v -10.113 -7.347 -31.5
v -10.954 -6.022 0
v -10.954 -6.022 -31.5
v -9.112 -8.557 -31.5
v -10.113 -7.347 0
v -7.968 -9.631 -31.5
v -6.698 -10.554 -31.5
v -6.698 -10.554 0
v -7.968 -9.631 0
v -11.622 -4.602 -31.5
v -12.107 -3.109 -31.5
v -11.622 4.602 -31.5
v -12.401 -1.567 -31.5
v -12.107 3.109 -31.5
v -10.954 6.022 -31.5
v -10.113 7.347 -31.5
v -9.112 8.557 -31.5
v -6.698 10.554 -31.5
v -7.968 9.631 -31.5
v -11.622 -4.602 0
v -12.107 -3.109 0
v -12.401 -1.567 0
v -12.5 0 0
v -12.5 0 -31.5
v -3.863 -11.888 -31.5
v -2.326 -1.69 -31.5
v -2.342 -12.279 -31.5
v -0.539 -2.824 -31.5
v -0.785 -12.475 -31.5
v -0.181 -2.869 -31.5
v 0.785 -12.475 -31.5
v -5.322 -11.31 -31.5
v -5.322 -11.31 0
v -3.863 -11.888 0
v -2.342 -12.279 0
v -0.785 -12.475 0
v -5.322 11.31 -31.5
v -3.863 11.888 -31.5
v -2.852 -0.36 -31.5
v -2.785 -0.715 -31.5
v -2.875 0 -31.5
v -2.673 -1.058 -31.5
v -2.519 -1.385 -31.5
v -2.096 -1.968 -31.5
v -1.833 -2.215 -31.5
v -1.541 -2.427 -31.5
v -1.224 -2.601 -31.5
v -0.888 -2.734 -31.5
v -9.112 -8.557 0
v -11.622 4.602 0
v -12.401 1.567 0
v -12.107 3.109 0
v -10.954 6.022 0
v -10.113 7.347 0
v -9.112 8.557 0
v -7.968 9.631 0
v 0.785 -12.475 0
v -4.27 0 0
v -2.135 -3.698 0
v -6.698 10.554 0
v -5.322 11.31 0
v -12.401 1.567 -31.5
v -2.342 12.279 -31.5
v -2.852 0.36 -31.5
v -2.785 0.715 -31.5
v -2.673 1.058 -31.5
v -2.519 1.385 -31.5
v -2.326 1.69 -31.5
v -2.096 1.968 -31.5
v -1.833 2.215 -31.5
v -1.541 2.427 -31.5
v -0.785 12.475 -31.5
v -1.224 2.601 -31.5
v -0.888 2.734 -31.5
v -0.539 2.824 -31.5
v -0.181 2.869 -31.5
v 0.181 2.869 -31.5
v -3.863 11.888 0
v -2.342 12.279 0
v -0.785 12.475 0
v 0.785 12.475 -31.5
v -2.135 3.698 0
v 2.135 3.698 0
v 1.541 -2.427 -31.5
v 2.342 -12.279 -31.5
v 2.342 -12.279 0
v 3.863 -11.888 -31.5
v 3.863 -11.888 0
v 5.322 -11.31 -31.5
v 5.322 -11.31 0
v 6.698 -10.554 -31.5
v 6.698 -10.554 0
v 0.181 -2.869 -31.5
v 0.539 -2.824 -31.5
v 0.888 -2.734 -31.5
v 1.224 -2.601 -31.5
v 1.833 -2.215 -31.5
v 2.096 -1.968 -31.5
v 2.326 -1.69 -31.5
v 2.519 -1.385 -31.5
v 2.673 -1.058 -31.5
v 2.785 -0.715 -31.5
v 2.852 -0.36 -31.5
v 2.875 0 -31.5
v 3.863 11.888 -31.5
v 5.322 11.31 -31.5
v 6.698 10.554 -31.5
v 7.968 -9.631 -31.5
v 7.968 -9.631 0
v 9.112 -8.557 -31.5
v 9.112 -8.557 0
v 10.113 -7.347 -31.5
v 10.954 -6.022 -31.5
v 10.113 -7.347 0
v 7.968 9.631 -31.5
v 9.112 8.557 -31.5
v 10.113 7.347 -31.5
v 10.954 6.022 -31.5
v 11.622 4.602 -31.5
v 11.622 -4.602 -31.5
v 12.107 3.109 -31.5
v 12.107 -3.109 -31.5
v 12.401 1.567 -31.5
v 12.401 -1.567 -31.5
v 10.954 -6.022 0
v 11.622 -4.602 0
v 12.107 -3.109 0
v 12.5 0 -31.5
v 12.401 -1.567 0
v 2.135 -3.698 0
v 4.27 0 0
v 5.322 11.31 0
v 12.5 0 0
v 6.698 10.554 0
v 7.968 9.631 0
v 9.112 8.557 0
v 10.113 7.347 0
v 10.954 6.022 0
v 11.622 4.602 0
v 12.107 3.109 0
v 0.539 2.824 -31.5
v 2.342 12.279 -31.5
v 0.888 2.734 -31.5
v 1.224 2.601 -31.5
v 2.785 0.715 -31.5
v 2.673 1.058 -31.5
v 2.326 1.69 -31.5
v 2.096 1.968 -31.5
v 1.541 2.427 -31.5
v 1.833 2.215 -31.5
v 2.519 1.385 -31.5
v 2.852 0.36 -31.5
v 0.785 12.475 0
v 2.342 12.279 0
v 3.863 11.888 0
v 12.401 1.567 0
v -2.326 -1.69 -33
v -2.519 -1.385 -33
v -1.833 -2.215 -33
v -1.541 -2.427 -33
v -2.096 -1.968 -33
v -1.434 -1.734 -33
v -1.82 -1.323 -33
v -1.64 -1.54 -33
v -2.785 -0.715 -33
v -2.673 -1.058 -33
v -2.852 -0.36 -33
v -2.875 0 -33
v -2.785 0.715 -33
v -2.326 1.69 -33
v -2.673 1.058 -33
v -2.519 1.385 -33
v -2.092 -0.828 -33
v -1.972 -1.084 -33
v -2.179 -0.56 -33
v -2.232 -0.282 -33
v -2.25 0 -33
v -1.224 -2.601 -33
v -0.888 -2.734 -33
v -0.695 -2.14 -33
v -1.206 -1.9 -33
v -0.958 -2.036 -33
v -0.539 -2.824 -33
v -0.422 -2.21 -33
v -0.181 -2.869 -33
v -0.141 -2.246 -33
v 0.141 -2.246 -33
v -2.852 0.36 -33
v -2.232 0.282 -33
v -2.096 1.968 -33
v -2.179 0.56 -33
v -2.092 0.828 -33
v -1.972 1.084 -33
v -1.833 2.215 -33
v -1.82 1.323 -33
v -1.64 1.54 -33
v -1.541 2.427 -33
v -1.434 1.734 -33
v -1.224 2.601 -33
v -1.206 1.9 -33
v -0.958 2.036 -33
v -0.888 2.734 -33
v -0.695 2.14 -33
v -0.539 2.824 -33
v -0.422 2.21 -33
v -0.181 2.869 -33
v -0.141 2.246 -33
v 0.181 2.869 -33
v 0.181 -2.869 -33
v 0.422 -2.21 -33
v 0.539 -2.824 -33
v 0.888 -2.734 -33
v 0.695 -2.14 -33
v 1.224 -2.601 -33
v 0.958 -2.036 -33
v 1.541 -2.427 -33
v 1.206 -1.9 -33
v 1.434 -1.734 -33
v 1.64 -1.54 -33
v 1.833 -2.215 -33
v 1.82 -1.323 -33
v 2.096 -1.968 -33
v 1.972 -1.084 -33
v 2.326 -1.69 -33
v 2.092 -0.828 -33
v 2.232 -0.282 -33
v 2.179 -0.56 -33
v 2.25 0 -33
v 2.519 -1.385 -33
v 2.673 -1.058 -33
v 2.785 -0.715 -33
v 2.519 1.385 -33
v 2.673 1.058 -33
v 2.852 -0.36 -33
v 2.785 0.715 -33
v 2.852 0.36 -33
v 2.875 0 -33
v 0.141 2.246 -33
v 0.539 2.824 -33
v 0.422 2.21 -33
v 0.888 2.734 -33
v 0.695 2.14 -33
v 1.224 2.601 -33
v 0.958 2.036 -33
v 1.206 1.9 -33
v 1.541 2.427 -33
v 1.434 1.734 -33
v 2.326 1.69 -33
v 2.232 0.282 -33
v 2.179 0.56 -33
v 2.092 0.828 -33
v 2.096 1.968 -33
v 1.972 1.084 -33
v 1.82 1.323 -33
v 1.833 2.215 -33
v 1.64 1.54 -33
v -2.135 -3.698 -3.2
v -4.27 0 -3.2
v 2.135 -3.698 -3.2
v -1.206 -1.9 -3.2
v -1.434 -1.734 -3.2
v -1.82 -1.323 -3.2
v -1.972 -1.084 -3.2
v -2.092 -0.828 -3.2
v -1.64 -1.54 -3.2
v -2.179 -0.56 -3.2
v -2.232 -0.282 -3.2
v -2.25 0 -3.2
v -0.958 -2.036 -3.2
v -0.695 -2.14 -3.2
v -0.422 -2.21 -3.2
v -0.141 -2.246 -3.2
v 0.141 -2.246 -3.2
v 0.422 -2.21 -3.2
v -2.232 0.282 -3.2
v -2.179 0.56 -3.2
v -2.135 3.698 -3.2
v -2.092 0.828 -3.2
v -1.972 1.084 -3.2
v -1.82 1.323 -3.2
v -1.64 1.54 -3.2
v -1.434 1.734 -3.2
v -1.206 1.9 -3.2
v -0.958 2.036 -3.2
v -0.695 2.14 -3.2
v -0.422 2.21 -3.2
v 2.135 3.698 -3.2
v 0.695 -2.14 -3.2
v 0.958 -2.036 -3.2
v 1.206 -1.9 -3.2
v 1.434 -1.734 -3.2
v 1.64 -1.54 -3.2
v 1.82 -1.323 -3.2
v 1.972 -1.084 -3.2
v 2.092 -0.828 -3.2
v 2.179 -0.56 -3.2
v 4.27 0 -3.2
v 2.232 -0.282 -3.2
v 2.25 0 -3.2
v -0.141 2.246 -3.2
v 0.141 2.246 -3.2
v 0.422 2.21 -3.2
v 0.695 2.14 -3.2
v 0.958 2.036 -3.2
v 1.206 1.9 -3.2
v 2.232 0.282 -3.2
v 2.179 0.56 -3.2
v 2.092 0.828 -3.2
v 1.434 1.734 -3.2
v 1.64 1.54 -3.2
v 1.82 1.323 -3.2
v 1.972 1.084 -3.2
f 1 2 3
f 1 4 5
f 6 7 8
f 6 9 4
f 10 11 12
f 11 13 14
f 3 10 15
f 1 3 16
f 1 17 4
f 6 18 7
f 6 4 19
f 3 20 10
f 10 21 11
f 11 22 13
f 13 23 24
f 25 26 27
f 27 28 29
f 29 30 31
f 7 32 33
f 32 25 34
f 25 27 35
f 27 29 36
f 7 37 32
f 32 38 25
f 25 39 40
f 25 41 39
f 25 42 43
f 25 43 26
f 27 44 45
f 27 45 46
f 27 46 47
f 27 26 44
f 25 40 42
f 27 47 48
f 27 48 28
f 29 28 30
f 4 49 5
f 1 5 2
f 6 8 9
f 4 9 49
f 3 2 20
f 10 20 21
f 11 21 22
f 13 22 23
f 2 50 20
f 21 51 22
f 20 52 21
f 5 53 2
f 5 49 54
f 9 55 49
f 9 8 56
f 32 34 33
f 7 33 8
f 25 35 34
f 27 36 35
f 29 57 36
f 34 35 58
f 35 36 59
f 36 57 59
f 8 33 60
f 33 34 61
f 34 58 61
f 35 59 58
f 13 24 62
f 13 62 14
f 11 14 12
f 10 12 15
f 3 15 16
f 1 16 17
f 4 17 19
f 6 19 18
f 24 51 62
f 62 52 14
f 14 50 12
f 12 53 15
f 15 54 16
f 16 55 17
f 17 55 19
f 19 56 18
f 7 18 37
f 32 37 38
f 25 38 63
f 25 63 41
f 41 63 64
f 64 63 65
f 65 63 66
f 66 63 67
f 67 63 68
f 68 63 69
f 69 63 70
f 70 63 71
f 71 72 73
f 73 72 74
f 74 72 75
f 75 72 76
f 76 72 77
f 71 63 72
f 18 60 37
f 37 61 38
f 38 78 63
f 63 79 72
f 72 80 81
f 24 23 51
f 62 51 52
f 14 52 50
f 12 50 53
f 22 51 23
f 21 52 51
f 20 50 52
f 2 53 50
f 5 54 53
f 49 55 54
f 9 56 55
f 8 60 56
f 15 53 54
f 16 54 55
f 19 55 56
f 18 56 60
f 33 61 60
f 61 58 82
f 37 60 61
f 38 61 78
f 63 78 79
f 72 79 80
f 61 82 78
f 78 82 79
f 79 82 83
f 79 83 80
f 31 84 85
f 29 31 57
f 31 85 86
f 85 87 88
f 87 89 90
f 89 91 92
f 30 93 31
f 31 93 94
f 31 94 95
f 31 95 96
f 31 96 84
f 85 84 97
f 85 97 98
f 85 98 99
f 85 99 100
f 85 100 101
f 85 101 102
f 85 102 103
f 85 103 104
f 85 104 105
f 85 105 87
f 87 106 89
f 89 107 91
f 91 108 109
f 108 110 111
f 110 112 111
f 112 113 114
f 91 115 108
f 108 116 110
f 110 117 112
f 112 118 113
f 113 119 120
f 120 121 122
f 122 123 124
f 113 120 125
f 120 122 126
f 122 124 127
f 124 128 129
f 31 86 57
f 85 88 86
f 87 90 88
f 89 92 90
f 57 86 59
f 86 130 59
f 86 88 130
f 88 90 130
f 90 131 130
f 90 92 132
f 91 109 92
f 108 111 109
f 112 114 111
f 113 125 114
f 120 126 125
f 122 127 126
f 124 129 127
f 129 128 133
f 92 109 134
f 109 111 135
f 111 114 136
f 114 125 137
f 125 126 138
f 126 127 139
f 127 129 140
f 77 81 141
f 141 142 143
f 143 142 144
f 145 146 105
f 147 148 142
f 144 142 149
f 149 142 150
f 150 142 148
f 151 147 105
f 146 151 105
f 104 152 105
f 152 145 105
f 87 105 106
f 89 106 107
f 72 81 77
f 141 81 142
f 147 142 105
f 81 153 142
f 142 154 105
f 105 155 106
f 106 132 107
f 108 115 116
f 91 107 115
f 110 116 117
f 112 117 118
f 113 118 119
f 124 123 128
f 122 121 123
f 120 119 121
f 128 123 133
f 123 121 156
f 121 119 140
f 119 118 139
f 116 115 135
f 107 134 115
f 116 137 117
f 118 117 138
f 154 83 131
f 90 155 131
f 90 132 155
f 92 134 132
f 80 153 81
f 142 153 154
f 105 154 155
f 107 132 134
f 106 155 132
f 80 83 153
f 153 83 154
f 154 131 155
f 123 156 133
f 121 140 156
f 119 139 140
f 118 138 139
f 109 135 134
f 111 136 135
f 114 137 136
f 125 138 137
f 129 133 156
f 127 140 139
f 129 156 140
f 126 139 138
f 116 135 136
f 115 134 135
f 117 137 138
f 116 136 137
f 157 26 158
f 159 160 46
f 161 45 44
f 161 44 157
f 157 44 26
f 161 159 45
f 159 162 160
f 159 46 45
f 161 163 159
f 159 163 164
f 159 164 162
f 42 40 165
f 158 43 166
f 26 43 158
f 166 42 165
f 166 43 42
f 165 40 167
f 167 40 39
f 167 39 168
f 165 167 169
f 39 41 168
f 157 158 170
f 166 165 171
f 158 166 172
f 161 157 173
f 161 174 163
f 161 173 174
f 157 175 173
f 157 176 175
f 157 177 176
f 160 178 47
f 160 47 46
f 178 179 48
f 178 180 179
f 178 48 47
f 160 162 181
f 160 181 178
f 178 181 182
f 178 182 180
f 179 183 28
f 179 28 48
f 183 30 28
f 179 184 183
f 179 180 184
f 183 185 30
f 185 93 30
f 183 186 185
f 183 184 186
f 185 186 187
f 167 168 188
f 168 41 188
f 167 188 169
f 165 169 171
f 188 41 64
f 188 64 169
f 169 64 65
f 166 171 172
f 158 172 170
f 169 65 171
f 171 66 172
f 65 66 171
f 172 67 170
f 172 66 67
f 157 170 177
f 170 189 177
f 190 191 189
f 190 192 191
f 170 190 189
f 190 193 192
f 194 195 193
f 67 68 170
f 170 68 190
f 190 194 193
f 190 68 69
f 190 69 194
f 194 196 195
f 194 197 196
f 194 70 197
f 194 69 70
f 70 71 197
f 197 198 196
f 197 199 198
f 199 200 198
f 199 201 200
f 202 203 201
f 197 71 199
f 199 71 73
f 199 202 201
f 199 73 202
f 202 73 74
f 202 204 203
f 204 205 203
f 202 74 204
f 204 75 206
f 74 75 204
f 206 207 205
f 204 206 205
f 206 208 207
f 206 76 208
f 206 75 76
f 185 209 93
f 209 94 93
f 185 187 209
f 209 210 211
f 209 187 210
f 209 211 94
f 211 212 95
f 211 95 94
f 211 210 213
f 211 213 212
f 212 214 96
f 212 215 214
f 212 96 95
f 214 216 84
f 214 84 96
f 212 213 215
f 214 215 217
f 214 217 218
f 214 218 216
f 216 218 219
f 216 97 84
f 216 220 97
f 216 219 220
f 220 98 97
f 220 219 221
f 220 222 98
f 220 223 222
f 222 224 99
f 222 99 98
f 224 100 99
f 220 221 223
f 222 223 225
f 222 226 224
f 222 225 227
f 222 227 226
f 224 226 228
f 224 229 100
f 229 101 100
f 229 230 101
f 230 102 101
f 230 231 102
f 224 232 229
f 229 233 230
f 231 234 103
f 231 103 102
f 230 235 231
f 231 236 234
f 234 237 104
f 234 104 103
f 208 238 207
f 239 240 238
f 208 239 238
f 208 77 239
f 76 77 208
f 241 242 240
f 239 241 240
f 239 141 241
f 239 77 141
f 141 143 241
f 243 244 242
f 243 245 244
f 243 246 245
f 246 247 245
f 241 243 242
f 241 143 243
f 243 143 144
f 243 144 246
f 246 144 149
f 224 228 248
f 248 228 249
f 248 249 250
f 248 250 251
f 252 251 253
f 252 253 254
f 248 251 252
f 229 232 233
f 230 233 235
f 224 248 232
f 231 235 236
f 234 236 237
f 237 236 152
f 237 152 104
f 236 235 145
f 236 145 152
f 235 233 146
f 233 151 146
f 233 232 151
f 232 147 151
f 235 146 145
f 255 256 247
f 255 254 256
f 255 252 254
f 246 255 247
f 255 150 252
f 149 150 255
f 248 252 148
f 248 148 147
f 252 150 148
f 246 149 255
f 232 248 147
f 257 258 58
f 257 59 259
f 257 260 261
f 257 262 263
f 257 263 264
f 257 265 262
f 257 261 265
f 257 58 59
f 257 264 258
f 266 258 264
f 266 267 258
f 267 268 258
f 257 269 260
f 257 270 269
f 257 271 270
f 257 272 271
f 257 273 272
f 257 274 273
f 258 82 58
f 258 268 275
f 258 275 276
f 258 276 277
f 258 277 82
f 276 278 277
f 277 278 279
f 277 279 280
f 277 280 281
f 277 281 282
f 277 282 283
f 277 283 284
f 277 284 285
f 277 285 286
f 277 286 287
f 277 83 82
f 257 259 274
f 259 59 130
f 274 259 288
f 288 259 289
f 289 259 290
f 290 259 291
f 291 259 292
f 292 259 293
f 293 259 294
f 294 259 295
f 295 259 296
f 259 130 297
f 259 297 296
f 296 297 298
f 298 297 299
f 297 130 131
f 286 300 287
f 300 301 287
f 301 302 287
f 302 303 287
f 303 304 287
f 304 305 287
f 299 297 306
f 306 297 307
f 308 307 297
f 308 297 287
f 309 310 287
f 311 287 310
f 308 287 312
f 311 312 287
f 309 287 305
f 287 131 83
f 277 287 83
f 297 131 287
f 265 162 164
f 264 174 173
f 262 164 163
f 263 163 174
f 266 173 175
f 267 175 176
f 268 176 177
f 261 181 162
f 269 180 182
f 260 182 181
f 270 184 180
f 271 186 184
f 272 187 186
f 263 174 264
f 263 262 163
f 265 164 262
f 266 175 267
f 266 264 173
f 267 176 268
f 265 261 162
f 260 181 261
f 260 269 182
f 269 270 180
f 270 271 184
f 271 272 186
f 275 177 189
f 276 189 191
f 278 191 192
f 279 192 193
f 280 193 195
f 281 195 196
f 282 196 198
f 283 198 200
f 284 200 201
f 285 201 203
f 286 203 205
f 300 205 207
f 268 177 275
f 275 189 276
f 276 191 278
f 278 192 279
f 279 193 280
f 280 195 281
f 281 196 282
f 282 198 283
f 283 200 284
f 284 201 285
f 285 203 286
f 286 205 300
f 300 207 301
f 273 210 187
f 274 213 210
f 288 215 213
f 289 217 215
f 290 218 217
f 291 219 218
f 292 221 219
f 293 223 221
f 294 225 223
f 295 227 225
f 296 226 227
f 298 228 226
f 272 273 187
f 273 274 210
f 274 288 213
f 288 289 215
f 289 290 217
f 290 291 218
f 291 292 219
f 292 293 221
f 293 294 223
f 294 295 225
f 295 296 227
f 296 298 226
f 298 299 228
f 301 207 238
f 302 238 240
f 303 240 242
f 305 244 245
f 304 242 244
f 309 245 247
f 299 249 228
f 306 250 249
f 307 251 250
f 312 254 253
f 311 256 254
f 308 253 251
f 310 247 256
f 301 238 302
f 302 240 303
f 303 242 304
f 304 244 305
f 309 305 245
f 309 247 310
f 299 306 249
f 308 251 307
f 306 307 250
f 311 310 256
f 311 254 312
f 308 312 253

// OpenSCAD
$fn = 50;


difference() {
	union() {
		translate(v = [0, 0, -31.5000000000]) {
			cylinder(h = 31.5000000000, r = 12.5000000000);
		}
		#translate(v = [0, 0, -33.0000000000]) {
			cylinder(h = 33, r = 2.8750000000);
		}
	}
	union() {
		translate(v = [0, 0, 0]) {
			rotate(a = [0, 0, 0]) {
				difference() {
					union() {
						translate(v = [0, 0, -3.2000000000]) {
							linear_extrude(height = 3.2000000000) {
								polygon(points = [[4.2698000000, 0.0000000000], [2.1349000000, 3.6977552691], [-2.1349000000, 3.6977552691], [-4.2698000000, 0.0000000000], [-2.1349000000, -3.6977552691], [2.1349000000, -3.6977552691]]);
							}
						}
					}
					union();
				}
			}
		}
		#translate(v = [0, 0, -100.0000000000]) {
			cylinder(h = 200, r = 2.2500000000);
		}
	}
}
